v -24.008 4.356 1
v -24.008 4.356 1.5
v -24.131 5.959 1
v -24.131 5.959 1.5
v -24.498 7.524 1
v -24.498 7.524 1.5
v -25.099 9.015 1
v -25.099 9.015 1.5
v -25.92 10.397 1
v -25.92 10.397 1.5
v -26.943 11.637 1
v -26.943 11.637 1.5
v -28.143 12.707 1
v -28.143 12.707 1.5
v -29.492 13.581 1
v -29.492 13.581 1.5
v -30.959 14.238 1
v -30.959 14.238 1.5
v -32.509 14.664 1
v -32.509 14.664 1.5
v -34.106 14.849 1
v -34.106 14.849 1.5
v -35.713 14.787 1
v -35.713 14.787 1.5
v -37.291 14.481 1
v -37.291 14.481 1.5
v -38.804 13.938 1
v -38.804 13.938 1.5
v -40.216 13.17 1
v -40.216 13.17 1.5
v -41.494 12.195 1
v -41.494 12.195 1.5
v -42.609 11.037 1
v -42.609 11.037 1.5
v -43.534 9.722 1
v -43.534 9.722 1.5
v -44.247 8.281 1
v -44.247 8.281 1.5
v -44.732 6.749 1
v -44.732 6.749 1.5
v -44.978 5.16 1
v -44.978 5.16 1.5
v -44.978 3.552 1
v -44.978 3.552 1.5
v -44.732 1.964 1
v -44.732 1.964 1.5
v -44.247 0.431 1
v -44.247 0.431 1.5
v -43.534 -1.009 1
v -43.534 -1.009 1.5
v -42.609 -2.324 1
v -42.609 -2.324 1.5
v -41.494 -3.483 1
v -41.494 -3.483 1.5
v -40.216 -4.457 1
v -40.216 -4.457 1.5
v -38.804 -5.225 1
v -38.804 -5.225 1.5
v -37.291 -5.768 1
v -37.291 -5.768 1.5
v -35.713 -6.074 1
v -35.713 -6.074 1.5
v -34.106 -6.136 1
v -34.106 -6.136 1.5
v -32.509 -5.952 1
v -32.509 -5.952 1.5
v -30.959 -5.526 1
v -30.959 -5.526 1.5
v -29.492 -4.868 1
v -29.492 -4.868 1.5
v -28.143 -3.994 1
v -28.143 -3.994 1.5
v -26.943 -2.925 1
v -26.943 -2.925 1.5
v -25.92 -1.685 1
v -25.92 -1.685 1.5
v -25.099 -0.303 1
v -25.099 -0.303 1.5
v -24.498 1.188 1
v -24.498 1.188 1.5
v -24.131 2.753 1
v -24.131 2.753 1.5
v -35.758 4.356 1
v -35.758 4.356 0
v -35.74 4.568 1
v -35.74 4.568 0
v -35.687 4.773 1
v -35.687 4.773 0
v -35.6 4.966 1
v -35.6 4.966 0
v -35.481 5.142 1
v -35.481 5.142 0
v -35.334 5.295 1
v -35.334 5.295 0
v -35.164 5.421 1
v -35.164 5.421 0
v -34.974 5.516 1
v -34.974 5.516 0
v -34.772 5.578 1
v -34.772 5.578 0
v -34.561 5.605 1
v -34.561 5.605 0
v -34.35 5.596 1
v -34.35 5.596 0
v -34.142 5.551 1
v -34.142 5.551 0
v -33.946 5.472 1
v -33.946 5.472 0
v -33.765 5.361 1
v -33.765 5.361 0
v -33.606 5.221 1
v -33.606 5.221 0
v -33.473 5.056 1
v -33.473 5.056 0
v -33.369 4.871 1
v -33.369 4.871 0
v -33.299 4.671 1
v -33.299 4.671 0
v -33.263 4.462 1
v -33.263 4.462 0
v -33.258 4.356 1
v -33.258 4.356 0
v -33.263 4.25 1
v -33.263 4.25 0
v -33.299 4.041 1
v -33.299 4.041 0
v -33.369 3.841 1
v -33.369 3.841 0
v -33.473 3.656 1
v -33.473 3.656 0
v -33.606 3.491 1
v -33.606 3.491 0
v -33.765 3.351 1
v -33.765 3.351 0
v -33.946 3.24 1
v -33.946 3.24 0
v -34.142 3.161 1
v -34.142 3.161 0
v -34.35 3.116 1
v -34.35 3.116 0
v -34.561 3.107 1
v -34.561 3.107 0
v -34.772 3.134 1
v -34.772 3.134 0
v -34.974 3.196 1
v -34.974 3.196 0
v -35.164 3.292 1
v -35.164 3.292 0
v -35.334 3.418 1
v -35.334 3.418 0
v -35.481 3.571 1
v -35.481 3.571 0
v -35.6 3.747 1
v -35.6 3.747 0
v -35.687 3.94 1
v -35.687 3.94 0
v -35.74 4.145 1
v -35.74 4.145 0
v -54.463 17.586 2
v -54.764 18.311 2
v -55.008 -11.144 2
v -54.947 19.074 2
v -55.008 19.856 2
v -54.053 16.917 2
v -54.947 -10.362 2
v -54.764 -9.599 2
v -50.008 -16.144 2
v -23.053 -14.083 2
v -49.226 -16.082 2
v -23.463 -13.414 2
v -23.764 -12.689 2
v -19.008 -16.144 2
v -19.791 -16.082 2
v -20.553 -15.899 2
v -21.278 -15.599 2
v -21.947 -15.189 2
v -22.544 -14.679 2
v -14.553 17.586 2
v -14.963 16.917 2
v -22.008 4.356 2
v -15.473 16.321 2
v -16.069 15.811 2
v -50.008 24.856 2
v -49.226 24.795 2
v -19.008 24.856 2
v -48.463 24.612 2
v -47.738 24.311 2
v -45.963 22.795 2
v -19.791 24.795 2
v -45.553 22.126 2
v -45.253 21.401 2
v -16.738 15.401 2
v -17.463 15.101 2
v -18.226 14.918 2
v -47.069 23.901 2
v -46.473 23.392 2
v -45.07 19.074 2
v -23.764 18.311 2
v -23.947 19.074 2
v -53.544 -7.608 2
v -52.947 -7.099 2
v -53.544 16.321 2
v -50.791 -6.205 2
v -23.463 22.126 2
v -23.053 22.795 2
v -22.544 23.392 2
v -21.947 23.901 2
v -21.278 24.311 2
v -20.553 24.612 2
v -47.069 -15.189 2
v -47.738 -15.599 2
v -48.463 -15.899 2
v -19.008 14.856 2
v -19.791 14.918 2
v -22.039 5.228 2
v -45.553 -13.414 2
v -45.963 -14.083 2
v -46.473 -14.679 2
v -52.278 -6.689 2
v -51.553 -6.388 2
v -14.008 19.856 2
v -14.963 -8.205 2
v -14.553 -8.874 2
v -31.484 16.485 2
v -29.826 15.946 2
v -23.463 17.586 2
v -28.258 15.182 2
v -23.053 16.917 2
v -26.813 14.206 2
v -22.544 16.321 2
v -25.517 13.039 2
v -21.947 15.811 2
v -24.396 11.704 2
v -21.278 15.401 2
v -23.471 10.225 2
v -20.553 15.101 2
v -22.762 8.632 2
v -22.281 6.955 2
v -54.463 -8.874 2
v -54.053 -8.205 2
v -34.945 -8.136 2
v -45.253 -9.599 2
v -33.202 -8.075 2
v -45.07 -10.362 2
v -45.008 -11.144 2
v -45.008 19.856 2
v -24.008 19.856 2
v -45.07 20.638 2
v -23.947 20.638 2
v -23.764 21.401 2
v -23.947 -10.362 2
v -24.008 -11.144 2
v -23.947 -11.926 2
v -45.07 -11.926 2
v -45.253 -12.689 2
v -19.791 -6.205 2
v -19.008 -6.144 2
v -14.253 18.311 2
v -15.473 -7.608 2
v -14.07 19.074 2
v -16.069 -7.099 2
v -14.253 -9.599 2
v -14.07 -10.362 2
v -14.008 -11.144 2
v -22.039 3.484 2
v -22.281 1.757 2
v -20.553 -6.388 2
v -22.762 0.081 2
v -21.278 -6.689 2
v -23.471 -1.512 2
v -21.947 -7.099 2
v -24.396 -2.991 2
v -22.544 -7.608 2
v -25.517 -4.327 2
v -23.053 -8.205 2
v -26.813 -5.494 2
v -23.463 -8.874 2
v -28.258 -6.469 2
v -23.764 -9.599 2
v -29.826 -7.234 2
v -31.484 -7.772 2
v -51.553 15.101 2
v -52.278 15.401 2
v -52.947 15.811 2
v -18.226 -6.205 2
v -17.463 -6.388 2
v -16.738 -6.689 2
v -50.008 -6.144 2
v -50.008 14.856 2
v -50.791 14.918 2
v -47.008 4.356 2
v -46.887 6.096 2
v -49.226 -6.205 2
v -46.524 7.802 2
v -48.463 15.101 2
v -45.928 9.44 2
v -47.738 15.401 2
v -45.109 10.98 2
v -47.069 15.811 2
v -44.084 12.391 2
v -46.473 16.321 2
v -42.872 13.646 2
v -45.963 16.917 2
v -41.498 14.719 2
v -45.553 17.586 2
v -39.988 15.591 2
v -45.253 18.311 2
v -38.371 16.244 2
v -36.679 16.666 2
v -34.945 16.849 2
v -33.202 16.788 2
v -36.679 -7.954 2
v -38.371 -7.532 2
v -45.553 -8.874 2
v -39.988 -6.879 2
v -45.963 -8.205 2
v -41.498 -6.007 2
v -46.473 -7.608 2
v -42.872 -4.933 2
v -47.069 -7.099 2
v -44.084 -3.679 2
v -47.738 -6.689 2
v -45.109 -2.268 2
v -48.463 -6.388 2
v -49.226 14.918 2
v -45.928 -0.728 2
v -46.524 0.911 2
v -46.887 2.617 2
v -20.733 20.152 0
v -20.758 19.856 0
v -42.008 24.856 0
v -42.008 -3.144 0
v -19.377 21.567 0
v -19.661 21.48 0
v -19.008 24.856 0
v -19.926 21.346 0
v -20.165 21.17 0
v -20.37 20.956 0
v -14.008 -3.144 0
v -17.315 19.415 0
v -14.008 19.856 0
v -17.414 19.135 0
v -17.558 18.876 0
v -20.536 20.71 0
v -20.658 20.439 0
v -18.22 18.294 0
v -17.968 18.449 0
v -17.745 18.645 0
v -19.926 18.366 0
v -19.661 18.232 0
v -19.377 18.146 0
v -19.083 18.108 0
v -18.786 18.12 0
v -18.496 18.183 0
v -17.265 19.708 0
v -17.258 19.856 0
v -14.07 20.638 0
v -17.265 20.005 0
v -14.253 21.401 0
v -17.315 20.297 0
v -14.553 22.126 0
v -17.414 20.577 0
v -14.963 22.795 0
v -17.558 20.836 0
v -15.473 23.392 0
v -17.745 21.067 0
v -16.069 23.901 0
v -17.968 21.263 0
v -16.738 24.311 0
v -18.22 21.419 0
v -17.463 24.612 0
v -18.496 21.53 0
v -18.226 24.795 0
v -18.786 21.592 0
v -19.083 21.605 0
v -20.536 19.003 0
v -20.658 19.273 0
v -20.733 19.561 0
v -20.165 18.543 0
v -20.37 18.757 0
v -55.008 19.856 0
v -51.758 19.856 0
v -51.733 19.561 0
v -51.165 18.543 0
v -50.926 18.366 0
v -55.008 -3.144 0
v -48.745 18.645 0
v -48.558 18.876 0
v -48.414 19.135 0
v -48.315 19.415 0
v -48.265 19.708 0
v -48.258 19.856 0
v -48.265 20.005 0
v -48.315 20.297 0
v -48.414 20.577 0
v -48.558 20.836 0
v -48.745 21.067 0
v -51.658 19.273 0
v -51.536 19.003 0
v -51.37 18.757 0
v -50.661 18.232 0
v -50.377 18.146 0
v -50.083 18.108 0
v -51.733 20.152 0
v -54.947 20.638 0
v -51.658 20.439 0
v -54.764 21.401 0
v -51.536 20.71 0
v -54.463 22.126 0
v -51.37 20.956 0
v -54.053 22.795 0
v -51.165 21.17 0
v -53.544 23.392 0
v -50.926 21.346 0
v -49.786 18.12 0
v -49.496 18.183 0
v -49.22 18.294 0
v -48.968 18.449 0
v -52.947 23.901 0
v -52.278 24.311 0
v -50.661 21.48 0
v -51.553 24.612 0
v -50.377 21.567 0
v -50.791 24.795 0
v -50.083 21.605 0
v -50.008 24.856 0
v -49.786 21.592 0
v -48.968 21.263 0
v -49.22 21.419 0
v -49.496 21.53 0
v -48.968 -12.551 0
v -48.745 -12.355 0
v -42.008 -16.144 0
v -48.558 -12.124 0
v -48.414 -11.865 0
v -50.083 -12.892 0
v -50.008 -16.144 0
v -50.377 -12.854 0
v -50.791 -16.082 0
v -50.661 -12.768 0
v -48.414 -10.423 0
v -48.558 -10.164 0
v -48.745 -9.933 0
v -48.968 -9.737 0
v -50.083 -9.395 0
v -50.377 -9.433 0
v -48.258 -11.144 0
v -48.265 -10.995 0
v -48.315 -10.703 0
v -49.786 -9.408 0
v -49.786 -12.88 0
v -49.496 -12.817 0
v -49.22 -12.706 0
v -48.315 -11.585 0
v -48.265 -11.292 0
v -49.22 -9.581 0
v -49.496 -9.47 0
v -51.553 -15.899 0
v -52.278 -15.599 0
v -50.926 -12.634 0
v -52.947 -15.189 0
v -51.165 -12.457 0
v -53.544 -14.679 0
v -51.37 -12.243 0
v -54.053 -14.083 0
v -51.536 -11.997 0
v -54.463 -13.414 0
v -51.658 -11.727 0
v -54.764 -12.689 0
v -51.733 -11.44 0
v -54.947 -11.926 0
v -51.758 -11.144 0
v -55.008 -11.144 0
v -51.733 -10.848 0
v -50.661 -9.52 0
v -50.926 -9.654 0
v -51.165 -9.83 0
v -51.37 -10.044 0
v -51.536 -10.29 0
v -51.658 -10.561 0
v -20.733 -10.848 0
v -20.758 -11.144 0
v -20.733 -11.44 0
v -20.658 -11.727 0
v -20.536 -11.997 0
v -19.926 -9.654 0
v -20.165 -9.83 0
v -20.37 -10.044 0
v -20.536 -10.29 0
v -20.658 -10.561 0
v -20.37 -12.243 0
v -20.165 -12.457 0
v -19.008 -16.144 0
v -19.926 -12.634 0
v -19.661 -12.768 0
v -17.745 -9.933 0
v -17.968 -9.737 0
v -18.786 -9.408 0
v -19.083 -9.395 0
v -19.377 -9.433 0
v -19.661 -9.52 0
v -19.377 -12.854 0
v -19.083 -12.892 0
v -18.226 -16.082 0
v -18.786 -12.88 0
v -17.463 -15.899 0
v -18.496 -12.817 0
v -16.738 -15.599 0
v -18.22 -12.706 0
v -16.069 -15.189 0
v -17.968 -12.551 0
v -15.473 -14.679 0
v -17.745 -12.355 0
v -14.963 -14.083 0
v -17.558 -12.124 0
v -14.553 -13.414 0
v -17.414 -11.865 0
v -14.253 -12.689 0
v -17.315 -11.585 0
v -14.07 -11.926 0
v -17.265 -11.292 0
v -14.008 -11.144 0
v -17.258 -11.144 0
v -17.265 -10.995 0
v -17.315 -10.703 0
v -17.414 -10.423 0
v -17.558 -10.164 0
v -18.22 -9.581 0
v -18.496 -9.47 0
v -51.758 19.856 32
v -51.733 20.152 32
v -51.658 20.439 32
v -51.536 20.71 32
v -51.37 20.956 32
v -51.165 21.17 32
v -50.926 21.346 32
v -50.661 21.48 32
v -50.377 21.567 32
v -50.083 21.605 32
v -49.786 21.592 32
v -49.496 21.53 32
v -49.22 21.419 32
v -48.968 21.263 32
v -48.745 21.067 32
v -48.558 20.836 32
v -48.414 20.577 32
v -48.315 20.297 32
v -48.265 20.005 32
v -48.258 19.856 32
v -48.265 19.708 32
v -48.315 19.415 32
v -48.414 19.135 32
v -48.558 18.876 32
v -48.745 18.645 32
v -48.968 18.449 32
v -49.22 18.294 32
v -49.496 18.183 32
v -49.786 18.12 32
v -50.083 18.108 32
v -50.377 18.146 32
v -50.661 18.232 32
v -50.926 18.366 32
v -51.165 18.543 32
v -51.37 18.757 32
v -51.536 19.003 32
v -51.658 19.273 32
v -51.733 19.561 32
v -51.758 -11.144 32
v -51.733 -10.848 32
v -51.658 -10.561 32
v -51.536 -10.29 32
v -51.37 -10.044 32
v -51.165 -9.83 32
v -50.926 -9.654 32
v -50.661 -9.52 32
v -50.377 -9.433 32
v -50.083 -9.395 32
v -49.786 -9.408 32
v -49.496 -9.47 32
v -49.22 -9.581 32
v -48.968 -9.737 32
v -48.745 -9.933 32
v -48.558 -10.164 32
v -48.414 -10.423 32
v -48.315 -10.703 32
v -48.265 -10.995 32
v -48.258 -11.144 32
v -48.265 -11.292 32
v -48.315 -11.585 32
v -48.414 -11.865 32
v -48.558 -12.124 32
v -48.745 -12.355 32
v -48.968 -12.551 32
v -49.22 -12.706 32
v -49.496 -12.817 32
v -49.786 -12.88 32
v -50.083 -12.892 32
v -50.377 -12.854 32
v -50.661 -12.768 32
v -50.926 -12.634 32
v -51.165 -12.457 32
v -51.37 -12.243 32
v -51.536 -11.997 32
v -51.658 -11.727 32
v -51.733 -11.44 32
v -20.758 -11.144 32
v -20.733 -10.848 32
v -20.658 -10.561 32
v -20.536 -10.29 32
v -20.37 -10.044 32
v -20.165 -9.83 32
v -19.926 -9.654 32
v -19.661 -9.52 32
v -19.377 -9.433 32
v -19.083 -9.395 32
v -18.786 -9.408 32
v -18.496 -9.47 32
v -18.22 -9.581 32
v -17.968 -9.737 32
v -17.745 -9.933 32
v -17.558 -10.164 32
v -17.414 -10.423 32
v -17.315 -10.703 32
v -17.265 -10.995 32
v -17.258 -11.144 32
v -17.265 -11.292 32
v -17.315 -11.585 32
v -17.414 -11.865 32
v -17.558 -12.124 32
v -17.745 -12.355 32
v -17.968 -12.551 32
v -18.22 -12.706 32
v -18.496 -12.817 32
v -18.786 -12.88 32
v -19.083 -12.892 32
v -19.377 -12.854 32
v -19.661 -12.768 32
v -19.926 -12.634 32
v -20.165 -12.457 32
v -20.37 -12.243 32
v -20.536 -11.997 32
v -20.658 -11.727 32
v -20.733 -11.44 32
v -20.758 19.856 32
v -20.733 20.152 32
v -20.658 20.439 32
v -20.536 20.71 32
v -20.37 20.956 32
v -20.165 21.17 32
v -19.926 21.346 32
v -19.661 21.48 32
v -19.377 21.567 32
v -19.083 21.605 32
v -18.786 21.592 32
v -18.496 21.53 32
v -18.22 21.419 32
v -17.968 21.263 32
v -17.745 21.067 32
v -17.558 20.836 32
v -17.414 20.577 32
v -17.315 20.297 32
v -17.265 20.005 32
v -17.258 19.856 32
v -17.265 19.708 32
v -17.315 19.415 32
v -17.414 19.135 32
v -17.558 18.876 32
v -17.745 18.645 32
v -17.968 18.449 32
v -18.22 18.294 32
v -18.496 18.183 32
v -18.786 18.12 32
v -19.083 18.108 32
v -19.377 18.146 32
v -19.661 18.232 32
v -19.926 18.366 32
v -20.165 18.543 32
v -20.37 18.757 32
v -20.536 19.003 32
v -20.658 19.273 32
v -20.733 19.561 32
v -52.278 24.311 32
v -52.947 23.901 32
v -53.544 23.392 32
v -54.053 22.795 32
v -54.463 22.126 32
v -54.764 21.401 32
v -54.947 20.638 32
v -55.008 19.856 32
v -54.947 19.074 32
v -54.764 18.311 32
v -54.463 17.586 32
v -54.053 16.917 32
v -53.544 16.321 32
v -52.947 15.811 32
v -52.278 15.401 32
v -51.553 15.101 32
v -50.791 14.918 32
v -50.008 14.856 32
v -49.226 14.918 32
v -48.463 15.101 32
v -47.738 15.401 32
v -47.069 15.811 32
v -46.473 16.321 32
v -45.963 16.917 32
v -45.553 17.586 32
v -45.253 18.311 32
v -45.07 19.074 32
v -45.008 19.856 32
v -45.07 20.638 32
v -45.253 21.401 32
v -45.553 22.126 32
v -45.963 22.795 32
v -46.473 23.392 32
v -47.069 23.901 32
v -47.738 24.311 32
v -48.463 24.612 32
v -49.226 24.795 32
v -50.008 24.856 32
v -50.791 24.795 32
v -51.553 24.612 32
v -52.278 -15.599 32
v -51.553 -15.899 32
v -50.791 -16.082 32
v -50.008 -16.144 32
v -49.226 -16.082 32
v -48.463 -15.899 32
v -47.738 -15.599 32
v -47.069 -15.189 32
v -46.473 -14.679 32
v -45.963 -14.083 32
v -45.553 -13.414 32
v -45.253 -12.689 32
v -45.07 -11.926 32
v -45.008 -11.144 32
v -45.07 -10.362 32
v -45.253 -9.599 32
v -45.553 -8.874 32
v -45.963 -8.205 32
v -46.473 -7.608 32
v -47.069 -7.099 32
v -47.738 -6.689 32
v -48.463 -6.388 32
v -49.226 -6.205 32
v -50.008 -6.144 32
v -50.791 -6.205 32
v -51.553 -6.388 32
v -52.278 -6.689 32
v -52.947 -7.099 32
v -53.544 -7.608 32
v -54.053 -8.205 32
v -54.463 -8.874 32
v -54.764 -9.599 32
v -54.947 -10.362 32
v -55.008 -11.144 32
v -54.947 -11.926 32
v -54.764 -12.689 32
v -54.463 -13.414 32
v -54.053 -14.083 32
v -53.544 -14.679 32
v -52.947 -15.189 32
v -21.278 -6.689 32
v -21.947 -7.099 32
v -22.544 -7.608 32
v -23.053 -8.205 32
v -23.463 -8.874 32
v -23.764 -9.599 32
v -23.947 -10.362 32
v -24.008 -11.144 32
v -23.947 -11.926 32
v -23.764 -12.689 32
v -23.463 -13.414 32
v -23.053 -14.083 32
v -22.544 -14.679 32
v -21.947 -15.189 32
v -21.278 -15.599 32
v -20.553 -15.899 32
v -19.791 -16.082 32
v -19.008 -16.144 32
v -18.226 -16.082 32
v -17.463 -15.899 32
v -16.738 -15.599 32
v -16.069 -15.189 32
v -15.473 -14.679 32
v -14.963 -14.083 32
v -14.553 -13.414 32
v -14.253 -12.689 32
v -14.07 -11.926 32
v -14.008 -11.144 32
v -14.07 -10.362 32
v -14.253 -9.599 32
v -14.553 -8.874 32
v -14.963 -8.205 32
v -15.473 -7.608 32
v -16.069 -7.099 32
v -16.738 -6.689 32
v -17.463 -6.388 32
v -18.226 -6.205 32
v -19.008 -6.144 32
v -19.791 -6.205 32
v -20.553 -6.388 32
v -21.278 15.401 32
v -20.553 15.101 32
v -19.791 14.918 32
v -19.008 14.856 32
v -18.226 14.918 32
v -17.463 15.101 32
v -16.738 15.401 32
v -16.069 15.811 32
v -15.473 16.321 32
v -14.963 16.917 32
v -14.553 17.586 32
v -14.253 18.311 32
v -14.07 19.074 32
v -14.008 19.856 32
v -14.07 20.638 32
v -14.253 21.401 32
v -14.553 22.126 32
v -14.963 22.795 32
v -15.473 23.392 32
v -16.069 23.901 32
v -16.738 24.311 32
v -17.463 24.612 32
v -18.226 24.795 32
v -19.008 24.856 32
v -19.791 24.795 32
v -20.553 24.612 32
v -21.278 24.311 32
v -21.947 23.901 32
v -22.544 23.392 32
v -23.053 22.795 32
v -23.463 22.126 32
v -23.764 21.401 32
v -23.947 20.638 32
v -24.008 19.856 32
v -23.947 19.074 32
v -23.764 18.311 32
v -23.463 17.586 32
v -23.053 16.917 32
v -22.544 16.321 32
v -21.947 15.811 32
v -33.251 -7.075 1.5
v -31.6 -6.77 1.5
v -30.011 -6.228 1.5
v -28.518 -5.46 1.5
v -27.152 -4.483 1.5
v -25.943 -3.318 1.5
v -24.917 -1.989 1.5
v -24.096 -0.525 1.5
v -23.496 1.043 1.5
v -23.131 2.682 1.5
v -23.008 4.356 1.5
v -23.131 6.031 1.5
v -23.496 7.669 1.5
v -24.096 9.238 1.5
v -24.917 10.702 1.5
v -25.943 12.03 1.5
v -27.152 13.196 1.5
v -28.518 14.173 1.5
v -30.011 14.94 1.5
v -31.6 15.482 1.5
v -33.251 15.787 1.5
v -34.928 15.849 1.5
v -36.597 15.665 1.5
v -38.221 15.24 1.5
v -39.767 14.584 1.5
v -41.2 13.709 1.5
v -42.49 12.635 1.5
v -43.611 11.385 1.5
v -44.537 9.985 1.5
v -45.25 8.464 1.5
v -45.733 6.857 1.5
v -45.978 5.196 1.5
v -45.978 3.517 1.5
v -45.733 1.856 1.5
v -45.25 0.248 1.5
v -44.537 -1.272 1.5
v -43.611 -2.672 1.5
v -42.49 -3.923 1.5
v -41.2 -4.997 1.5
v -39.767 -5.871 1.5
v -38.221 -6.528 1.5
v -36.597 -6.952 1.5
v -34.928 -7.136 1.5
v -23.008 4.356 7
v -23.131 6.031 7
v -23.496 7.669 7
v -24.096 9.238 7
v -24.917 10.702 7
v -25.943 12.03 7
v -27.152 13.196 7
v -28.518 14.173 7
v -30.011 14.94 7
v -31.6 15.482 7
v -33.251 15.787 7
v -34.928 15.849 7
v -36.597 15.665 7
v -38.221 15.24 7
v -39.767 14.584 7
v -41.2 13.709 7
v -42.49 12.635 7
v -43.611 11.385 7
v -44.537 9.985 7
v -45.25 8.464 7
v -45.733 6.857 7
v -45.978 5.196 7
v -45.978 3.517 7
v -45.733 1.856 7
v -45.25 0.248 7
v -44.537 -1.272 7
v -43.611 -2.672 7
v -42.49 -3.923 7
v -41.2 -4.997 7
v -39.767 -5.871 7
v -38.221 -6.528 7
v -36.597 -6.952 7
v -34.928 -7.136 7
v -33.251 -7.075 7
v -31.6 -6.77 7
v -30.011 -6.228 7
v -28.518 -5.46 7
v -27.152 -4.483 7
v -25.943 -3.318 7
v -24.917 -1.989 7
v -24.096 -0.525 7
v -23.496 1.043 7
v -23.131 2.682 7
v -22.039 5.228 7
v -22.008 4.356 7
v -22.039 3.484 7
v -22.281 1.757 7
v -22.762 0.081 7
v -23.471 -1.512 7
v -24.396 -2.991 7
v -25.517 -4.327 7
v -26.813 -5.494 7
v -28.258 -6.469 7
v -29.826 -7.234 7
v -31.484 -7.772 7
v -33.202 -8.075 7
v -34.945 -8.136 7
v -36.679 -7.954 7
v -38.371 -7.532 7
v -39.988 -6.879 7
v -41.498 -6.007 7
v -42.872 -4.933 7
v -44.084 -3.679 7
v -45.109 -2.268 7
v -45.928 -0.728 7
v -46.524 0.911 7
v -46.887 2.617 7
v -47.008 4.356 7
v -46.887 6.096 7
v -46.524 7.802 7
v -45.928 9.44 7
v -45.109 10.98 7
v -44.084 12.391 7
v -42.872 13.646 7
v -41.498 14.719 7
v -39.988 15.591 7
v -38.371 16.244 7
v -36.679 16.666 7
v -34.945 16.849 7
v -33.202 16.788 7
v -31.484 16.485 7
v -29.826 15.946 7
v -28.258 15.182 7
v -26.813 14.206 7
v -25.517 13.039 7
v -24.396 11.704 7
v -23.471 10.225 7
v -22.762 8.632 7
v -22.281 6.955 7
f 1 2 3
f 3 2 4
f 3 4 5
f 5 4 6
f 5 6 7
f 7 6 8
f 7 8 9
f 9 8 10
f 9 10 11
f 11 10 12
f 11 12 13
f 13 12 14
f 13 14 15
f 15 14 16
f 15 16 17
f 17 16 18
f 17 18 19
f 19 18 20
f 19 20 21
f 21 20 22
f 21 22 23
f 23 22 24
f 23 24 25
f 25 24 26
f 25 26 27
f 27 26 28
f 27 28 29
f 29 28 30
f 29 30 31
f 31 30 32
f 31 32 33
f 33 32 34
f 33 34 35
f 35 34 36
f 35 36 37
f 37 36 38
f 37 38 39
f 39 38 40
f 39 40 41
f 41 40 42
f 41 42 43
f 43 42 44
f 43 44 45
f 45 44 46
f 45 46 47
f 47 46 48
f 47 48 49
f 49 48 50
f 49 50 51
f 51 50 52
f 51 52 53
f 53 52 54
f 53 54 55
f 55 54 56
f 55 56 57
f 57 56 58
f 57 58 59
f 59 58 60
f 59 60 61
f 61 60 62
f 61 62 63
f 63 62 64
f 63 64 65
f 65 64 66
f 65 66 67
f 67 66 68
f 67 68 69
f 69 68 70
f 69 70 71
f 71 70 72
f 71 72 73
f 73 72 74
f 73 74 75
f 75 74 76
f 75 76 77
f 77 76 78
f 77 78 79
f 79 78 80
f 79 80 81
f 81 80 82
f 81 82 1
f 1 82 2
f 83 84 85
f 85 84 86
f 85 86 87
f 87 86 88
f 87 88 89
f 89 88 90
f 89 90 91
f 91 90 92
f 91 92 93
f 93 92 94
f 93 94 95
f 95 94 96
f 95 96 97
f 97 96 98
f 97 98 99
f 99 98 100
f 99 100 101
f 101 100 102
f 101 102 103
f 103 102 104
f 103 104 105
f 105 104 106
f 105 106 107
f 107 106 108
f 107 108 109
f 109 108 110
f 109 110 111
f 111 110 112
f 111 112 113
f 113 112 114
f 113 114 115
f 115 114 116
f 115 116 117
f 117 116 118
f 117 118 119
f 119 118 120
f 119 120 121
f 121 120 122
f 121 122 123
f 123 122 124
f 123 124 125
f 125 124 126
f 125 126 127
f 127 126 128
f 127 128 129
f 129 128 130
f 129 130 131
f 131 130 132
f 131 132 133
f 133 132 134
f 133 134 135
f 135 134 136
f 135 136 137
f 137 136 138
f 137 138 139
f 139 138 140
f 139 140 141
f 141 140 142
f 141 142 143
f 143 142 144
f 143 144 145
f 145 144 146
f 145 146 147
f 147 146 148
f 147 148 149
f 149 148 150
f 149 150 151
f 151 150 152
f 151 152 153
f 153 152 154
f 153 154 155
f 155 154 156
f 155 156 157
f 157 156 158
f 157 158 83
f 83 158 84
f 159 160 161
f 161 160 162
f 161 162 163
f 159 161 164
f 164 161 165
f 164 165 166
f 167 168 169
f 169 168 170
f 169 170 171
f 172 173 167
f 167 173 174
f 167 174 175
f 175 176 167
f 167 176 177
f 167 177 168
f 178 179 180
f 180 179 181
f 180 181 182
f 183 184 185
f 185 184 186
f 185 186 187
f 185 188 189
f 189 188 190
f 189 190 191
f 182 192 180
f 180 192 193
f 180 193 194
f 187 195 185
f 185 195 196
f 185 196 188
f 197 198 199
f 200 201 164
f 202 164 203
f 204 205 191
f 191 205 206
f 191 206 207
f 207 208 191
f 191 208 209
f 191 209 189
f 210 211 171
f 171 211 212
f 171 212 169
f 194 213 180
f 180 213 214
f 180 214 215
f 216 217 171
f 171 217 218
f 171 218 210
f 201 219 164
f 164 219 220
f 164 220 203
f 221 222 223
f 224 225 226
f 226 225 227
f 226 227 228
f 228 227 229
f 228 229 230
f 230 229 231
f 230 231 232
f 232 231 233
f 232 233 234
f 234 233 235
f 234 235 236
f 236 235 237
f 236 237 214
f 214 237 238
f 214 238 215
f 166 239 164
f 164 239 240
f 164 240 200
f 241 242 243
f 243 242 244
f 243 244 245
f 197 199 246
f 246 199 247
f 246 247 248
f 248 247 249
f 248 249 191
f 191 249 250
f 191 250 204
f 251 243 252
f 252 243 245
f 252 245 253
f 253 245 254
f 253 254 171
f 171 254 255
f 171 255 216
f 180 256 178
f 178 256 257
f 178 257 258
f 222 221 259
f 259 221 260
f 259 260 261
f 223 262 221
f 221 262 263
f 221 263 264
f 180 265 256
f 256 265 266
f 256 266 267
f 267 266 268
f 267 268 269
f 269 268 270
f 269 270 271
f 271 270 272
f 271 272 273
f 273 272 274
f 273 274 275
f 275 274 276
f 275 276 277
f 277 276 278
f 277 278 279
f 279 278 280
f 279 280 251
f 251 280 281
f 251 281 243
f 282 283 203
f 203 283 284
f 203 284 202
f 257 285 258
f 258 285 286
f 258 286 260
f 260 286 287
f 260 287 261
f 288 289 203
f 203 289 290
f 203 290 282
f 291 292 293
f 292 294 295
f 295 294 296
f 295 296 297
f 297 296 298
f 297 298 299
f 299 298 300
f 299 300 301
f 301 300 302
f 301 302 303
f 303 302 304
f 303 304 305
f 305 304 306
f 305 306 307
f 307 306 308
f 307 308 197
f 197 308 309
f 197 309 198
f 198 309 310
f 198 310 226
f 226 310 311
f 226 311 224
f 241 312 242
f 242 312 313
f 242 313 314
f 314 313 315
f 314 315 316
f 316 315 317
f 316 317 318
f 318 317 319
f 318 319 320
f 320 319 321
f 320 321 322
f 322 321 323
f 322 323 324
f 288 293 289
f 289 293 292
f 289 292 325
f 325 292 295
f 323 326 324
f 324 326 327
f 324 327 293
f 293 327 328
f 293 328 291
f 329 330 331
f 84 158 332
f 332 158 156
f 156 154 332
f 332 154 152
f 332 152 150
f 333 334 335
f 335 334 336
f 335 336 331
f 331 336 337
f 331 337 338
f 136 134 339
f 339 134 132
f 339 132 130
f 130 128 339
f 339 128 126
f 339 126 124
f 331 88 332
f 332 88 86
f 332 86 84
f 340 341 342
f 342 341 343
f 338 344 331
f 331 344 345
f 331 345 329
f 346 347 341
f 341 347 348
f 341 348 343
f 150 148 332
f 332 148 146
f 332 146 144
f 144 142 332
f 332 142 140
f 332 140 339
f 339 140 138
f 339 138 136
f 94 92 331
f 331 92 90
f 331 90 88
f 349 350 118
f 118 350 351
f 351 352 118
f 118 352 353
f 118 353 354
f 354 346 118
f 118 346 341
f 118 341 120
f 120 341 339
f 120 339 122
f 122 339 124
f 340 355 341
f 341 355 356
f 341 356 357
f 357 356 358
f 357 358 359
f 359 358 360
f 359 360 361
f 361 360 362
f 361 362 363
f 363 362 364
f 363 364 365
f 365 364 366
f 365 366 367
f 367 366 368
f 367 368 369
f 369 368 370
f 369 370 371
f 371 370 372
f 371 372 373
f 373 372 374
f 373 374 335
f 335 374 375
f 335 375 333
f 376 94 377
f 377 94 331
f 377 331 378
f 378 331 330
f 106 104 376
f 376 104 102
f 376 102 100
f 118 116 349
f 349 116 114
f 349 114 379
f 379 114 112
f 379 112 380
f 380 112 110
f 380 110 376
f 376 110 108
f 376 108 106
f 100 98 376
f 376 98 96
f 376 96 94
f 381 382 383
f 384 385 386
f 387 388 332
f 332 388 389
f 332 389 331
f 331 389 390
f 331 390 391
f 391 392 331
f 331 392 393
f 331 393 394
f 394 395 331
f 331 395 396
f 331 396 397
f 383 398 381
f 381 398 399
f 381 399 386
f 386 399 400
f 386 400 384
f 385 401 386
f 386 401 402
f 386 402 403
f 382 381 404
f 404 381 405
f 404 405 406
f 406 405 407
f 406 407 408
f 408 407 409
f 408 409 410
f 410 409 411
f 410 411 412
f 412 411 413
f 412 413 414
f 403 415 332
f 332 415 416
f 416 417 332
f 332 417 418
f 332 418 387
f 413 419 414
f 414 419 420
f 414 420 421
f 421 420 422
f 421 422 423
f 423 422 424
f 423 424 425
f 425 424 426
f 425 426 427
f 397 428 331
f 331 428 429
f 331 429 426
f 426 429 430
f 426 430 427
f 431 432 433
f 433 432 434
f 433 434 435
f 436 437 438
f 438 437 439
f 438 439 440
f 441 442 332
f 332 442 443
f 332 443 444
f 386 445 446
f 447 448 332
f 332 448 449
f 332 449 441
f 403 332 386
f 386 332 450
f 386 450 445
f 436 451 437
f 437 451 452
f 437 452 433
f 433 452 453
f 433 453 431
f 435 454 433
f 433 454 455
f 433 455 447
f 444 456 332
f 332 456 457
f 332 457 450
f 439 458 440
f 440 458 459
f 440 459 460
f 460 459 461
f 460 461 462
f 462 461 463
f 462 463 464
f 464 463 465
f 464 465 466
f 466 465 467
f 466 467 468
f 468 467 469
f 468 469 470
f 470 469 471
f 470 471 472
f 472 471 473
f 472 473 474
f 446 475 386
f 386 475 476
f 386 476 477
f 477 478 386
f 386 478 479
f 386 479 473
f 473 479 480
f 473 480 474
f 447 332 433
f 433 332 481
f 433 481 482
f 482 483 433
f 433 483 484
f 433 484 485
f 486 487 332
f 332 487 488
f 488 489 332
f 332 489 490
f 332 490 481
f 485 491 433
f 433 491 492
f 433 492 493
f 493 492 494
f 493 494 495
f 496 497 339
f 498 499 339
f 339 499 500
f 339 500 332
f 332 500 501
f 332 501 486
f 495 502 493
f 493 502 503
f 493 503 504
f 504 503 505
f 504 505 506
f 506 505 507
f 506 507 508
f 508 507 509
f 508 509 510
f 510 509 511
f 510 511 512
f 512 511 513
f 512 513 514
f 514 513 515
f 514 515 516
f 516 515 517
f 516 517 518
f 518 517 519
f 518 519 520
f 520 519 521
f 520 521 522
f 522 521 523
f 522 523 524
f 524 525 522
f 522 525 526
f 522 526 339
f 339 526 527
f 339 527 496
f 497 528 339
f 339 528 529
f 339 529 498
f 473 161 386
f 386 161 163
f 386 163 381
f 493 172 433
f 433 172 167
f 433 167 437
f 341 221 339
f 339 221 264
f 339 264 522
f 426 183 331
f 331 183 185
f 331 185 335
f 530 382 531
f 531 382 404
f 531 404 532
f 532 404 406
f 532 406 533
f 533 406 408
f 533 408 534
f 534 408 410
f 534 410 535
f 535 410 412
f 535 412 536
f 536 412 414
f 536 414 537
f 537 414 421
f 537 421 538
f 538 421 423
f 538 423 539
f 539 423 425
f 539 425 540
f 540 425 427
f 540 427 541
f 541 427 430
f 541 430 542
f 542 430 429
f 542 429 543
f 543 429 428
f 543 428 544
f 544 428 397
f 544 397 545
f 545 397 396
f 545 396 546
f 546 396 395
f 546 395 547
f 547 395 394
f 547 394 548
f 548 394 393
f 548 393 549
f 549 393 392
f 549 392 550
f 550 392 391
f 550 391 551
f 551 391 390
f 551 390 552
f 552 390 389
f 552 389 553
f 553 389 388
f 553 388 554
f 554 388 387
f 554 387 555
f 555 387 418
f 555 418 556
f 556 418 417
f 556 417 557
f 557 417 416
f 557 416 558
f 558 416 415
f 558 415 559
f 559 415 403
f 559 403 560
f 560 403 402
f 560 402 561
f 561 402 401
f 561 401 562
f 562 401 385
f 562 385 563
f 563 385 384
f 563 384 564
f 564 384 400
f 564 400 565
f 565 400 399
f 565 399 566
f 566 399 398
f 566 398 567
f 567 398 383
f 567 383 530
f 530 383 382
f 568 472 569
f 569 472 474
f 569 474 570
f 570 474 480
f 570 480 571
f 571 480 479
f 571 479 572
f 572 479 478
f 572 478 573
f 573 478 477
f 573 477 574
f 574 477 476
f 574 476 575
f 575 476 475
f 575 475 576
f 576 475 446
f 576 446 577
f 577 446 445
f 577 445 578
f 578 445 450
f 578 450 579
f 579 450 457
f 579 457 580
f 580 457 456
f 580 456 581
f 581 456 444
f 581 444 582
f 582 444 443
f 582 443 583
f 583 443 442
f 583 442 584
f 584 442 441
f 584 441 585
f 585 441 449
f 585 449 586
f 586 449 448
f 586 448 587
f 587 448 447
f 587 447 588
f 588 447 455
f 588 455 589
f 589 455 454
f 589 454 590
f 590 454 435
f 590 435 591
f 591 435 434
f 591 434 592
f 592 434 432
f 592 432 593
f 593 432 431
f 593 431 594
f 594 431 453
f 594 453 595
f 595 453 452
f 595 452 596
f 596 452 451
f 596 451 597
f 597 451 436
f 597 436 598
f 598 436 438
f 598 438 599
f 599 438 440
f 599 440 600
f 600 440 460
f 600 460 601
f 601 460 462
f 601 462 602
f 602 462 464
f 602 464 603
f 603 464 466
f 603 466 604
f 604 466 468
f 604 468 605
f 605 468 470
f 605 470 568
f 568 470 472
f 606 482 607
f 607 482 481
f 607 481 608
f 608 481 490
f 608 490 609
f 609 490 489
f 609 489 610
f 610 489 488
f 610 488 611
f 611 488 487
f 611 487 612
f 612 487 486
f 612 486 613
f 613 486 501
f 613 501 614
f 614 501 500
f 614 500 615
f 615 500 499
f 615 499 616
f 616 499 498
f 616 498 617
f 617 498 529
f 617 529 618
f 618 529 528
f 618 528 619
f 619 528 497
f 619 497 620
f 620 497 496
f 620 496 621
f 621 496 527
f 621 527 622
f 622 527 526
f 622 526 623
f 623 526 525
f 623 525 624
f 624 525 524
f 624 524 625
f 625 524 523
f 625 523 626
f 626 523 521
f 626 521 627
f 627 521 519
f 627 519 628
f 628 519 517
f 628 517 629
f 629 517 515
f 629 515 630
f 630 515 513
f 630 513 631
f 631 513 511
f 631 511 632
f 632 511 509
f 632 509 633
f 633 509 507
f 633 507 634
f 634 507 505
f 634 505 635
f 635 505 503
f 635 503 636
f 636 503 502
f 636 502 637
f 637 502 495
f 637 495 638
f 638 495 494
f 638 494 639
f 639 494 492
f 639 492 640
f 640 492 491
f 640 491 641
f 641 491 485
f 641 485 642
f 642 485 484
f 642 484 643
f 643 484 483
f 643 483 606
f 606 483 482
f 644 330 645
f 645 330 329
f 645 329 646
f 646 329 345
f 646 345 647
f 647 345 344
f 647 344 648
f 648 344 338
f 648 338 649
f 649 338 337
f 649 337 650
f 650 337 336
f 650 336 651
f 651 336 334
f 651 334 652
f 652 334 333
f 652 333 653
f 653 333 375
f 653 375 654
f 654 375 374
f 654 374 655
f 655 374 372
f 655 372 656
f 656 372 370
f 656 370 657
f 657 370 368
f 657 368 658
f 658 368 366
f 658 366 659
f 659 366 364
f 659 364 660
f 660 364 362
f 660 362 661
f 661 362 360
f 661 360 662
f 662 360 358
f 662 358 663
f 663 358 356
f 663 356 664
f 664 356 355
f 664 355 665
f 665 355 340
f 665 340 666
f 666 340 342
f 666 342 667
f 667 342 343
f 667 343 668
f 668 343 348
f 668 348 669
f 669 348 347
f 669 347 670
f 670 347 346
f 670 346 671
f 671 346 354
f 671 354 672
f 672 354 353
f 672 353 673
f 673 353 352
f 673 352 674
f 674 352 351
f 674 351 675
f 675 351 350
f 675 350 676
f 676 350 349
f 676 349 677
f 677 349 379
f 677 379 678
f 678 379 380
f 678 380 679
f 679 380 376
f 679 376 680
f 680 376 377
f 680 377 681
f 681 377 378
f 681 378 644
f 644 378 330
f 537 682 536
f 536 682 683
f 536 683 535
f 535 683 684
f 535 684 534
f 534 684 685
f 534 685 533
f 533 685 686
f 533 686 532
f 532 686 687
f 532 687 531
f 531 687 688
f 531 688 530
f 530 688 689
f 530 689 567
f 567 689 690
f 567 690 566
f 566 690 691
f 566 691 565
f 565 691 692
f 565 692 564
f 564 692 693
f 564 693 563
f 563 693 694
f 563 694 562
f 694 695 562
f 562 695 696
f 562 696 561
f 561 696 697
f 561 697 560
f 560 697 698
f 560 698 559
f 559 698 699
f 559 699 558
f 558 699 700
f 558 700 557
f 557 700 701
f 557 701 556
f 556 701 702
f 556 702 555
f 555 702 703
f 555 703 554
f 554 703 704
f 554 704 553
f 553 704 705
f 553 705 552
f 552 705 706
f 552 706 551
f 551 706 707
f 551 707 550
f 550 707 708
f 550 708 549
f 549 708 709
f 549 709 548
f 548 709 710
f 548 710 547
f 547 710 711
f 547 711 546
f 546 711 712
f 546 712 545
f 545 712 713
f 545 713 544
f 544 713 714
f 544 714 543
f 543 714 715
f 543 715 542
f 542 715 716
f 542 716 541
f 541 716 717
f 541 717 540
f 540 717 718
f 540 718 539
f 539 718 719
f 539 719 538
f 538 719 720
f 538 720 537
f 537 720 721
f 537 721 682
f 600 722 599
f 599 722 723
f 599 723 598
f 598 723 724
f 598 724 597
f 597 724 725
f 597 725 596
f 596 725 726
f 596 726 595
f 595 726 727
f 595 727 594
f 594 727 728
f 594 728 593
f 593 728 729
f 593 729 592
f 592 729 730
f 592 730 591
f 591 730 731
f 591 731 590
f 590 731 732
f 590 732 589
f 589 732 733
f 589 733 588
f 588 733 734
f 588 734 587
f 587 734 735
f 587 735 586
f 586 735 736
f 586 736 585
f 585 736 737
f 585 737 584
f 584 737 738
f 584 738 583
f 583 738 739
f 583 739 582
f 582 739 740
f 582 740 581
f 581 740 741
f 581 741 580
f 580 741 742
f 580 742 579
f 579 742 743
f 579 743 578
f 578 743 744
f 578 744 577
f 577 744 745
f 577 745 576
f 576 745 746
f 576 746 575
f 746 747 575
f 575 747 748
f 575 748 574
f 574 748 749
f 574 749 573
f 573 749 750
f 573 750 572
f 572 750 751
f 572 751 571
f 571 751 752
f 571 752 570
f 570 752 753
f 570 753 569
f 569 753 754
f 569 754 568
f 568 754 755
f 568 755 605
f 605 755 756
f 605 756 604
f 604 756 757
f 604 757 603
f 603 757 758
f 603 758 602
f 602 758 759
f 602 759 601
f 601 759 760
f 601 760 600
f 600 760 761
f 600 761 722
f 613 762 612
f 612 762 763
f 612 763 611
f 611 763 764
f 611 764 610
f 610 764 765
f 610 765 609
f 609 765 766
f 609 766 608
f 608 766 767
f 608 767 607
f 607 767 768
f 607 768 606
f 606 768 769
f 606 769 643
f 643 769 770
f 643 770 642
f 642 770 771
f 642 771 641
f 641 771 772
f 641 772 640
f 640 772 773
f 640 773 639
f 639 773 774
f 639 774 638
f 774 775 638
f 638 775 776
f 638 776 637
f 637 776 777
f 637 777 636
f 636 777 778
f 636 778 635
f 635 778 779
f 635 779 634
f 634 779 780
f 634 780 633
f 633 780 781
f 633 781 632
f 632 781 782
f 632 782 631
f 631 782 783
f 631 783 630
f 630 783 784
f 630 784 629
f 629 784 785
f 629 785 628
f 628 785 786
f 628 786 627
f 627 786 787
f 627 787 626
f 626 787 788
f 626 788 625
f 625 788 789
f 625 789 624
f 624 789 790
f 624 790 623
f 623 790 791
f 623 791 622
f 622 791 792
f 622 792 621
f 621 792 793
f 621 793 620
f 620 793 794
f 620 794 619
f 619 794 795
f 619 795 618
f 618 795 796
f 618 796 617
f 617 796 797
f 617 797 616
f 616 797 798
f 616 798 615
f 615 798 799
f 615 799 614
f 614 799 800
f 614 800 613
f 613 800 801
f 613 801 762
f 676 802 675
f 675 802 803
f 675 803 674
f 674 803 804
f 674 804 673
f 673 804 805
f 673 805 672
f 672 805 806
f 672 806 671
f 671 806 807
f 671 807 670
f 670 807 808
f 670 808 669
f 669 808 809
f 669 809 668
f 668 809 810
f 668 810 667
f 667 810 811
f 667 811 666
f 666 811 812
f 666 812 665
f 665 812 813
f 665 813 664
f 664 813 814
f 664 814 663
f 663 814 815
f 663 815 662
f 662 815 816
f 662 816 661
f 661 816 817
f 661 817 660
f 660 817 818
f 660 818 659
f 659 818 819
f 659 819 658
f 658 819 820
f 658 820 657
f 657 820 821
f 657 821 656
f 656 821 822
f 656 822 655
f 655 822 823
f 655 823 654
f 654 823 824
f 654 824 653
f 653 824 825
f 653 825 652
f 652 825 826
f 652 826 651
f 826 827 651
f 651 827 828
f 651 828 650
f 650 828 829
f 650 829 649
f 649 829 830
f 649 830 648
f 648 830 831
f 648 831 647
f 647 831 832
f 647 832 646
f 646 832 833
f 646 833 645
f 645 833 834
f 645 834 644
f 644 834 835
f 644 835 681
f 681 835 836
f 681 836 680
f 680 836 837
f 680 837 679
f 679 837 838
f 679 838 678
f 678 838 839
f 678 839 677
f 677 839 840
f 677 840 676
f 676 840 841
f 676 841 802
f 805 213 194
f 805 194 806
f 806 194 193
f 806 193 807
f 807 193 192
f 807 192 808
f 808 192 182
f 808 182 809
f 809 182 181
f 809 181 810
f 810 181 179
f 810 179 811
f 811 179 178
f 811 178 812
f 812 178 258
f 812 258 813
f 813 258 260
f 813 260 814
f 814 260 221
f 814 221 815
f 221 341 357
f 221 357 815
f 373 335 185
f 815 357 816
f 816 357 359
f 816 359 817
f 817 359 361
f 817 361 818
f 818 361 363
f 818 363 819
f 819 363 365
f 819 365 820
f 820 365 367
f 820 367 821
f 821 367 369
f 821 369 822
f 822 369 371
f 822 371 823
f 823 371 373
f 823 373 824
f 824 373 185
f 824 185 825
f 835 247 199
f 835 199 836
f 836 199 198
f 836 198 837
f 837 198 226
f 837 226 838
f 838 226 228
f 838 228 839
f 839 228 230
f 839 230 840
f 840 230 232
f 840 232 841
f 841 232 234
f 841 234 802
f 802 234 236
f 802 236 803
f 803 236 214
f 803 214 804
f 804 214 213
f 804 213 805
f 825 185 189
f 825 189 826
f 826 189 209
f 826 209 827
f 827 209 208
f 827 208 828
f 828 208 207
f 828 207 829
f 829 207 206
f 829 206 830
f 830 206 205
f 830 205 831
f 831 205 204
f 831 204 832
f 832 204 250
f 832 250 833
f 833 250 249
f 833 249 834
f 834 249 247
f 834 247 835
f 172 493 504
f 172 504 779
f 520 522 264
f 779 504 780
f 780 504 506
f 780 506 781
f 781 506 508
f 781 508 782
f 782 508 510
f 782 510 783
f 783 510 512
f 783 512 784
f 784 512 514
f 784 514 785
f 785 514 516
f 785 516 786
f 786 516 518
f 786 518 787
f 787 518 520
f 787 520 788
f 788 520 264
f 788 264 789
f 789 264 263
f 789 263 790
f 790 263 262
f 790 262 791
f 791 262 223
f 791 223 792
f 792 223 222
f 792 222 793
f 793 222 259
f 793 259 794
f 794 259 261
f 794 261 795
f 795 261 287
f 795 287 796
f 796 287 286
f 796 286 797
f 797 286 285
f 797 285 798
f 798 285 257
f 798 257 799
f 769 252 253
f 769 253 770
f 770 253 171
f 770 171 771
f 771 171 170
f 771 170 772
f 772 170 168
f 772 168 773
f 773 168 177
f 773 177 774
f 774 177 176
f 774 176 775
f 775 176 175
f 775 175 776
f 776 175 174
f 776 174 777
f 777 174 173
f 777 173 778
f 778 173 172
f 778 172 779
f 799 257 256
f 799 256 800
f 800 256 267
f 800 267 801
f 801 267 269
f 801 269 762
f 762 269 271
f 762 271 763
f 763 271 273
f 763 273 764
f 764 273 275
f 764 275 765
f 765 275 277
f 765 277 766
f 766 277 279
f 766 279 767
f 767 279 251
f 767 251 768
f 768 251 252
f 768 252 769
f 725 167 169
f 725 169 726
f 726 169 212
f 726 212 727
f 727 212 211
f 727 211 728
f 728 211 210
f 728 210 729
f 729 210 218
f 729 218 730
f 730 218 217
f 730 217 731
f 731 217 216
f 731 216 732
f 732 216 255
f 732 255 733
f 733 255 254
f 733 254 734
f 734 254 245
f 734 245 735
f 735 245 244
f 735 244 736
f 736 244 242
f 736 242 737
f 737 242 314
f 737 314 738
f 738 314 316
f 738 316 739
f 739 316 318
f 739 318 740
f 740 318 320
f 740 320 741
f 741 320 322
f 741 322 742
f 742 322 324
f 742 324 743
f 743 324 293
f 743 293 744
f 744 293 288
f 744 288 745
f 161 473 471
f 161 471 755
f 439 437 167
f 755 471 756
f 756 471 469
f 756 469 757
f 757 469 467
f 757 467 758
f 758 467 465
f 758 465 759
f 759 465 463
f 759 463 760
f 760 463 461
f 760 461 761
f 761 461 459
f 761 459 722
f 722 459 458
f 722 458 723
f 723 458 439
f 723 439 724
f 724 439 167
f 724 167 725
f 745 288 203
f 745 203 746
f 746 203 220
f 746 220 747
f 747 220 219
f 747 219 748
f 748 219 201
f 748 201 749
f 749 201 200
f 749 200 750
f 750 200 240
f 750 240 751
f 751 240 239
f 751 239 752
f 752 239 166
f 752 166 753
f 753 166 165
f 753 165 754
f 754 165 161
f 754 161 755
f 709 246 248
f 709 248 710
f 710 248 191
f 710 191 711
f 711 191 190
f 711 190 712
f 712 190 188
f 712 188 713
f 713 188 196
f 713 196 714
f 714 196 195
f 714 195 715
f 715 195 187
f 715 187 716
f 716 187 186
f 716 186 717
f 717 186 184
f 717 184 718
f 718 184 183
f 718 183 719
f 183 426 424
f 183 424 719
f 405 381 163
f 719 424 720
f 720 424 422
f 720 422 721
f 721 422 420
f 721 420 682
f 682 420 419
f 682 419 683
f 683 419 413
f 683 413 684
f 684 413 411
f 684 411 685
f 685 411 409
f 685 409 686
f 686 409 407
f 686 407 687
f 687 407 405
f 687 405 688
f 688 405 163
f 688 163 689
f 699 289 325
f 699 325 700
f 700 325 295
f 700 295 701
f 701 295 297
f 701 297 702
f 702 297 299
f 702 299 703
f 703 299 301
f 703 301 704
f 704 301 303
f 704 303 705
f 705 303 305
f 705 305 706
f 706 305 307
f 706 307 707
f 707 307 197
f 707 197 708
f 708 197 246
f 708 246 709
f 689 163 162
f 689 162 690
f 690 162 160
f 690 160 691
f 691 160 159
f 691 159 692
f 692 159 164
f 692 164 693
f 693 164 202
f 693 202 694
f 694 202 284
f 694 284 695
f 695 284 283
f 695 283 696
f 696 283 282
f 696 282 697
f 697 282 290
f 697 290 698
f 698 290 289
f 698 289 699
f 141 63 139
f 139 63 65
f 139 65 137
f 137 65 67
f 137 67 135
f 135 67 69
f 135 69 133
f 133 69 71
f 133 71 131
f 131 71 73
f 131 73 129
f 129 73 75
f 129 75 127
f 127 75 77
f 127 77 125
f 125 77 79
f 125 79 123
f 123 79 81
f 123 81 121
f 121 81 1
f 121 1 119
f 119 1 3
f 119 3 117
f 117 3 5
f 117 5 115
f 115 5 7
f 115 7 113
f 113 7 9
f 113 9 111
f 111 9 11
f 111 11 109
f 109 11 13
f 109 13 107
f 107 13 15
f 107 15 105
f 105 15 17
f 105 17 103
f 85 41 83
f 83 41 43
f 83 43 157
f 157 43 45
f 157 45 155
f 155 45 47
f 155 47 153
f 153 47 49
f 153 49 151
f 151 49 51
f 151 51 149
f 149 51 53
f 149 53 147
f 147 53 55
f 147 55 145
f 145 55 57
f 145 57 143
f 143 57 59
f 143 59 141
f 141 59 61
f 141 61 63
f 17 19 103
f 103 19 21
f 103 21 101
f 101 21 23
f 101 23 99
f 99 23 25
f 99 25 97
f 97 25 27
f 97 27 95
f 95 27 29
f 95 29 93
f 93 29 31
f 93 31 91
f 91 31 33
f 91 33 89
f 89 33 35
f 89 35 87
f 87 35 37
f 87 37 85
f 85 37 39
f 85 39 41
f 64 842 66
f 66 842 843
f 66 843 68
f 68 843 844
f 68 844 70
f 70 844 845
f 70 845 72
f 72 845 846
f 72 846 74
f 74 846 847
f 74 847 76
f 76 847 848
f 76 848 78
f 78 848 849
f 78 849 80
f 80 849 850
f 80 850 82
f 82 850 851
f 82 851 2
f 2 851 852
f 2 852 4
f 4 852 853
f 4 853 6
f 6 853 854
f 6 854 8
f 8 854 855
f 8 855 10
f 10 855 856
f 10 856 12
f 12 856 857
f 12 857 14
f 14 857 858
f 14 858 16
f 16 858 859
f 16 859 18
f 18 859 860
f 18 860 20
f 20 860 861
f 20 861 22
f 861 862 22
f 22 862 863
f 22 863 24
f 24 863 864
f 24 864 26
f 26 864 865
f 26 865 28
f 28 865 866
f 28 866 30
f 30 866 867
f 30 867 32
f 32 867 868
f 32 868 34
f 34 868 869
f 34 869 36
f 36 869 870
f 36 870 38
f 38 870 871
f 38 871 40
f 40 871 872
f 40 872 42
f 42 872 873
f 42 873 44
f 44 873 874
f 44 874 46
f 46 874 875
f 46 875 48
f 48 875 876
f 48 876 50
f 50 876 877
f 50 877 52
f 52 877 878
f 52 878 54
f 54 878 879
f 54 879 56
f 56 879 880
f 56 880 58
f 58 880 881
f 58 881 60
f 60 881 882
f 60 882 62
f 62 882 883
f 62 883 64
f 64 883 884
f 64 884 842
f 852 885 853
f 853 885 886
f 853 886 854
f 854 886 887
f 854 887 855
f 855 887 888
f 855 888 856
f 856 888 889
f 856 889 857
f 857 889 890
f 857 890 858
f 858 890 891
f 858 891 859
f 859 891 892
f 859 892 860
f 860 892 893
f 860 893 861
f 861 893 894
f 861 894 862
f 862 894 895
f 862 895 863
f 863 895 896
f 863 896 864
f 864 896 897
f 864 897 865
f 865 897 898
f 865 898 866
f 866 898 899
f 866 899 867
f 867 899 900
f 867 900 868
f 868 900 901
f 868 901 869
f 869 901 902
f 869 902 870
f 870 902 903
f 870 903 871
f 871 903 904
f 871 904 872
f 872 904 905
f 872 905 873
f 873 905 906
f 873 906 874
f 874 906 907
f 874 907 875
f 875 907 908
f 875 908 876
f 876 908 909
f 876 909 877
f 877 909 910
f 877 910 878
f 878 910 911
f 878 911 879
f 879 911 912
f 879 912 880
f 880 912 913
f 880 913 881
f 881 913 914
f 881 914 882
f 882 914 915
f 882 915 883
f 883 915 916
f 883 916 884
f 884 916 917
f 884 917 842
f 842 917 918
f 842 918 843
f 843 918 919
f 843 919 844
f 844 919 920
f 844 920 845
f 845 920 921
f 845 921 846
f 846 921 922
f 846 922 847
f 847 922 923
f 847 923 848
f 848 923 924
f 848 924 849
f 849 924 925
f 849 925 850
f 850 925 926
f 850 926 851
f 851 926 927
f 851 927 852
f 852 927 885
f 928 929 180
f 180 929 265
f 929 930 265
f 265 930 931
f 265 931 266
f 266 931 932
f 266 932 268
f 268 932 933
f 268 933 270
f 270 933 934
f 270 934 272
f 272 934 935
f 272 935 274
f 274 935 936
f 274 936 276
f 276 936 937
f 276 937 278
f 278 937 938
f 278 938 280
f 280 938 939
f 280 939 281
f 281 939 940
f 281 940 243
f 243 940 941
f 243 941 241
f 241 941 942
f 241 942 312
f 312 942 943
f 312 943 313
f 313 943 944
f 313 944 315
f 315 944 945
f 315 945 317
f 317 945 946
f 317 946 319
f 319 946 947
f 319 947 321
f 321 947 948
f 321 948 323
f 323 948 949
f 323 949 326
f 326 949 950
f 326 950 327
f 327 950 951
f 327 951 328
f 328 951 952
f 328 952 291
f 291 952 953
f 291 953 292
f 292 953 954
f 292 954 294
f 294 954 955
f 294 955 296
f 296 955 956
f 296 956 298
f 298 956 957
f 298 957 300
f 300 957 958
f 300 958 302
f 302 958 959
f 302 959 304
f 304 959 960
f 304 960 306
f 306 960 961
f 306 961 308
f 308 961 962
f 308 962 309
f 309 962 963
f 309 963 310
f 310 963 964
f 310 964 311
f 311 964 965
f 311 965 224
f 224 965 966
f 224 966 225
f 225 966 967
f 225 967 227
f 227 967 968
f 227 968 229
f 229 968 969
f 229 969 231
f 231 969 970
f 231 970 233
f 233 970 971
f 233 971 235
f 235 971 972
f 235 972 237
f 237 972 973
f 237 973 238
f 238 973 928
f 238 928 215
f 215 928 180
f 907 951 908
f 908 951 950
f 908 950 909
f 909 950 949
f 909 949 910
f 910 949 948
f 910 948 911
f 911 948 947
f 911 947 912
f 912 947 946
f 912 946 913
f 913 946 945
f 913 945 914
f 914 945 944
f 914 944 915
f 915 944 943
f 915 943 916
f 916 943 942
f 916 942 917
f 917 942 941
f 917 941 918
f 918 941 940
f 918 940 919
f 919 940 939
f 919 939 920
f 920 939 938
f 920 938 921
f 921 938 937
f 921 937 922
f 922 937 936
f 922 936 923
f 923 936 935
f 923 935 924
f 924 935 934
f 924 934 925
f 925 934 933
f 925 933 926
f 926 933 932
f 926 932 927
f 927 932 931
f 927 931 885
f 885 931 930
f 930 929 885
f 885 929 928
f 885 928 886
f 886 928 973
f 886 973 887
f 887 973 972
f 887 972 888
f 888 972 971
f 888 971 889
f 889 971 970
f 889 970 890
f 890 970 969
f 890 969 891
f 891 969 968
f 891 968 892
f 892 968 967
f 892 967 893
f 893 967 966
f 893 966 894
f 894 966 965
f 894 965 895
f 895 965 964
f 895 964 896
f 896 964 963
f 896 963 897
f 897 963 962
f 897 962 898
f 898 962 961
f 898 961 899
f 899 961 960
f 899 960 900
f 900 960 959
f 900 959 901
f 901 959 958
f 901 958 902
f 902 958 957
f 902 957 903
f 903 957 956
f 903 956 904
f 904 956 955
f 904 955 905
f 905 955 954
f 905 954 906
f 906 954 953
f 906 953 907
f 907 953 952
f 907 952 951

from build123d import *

# Parameters (mm, degrees)
SKETCH1_W           = 41
SKETCH1_H           = 41
SKETCH1_R           = 1.75
SKETCH1_R_2         = 1.25
BOSS_EXTRUDE1_DEPTH = 2
SKETCH2_W           = 10
SKETCH2_H           = 10
SKETCH2_R           = 1.75
BOSS_EXTRUDE2_DEPTH = 30
FILLET1_R           = 5
SKETCH3_R           = 10.5
CUT_EXTRUDE1_DEPTH  = 1
SKETCH4_R           = 11.5
CUT_EXTRUDE2_DEPTH  = 0.5
BOSS_EXTRUDE3_START = 5
SKETCH6_R           = 12.5
BOSS_EXTRUDE3_DEPTH = 5


with BuildPart() as part:
    # Sketch1 → Boss-Extrude1 (new body)
    with BuildSketch(Plane.XY):
        with Locations((-34.508333333, 4.35625)):
            Rectangle(SKETCH1_W, SKETCH1_H)
        with Locations((-50.008333333, 19.85625)):
            Circle(SKETCH1_R, mode=Mode.SUBTRACT)
        with Locations((-50.008333333, -11.14375)):
            Circle(SKETCH1_R, mode=Mode.SUBTRACT)
        with Locations((-19.008333333, -11.14375)):
            Circle(SKETCH1_R, mode=Mode.SUBTRACT)
        with Locations((-19.008333333, 19.85625)):
            Circle(SKETCH1_R, mode=Mode.SUBTRACT)
        with Locations((-34.508333333, 4.35625)):
            Circle(SKETCH1_R_2, mode=Mode.SUBTRACT)
    extrude(amount=BOSS_EXTRUDE1_DEPTH)

    # Sketch2 → Boss-Extrude2 (add)
    # profile 1 of 4: a face of its own
    with BuildSketch(Plane.XY.offset(2)):
        with Locations((-50.008333333, 19.85625)):
            Rectangle(SKETCH2_W, SKETCH2_H)
        with Locations((-50.008333333, 19.85625)):
            Circle(SKETCH2_R, mode=Mode.SUBTRACT)
    # profile 2 of 4: a face of its own
    with BuildSketch(Plane.XY.offset(2)):
        with Locations((-50.008333333, -11.14375)):
            Rectangle(SKETCH2_W, SKETCH2_H)
        with Locations((-50.008333333, -11.14375)):
            Circle(SKETCH2_R, mode=Mode.SUBTRACT)
    # profile 3 of 4: a face of its own
    with BuildSketch(Plane.XY.offset(2)):
        with Locations((-19.008333333, -11.14375)):
            Rectangle(SKETCH2_W, SKETCH2_H)
        with Locations((-19.008333333, -11.14375)):
            Circle(SKETCH2_R, mode=Mode.SUBTRACT)
    # profile 4 of 4: a face of its own
    with BuildSketch(Plane.XY.offset(2)):
        with Locations((-19.008333333, 19.85625)):
            Rectangle(SKETCH2_W, SKETCH2_H)
        with Locations((-19.008333333, 19.85625)):
            Circle(SKETCH2_R, mode=Mode.SUBTRACT)
    extrude(amount=BOSS_EXTRUDE2_DEPTH)

    # Fillet1
    fillet1_edges = [part.edges().sort_by_distance(p)[0] for p in [
        (-24.008333333, 24.85625, 17),
        (-24.008333333, -6.14375, 17),
        (-55.008333333, -6.14375, 17),
        (-55.008333333, 14.85625, 17),
        (-45.008333333, 24.85625, 17),
        (-45.008333333, -6.14375, 17),
        (-45.008333333, -16.14375, 17),
        (-24.008333333, -16.14375, 17),
        (-14.008333333, -6.14375, 17),
        (-14.008333333, 14.85625, 17),
        (-24.008333333, 14.85625, 17),
        (-45.008333333, 14.85625, 17),
        (-14.008333333, -16.14375, 16),
        (-14.008333333, 24.85625, 16),
        (-55.008333333, -16.14375, 16),
        (-55.008333333, 24.85625, 16),
    ]]
    fillet(fillet1_edges, radius=FILLET1_R - 0.0001)  # a hair under: the kernel refuses the full size

    # Sketch3 → Cut-Extrude1 (cut)
    with BuildSketch(Plane.XY.offset(2)):
        with Locations((-34.508333333, 4.35625)):
            Circle(SKETCH3_R)
    extrude(amount=-CUT_EXTRUDE1_DEPTH, mode=Mode.SUBTRACT)

    # Sketch4 → Cut-Extrude2 (cut)
    with BuildSketch(Plane.XY.offset(2)):
        with Locations((-34.508333333, 4.35625)):
            Circle(SKETCH4_R)
    extrude(amount=-CUT_EXTRUDE2_DEPTH, mode=Mode.SUBTRACT)

    # Sketch6 → Boss-Extrude3 (add)
    with BuildSketch(Plane.XY.offset(2).offset(BOSS_EXTRUDE3_START)):
        with Locations((-34.508333333, 4.35625)):
            Circle(SKETCH6_R)
        with BuildLine():
            ThreePointArc((-23.008333333, 4.35625), (-32.058371909, -6.879749689), (-44.964453163, -0.431187531))
            ThreePointArc((-44.964453163, -0.431187531), (-36.958294758, 15.592249689), (-23.008333333, 4.35625))
        make_face(mode=Mode.SUBTRACT)
    extrude(amount=-BOSS_EXTRUDE3_DEPTH)


solid = part.part
